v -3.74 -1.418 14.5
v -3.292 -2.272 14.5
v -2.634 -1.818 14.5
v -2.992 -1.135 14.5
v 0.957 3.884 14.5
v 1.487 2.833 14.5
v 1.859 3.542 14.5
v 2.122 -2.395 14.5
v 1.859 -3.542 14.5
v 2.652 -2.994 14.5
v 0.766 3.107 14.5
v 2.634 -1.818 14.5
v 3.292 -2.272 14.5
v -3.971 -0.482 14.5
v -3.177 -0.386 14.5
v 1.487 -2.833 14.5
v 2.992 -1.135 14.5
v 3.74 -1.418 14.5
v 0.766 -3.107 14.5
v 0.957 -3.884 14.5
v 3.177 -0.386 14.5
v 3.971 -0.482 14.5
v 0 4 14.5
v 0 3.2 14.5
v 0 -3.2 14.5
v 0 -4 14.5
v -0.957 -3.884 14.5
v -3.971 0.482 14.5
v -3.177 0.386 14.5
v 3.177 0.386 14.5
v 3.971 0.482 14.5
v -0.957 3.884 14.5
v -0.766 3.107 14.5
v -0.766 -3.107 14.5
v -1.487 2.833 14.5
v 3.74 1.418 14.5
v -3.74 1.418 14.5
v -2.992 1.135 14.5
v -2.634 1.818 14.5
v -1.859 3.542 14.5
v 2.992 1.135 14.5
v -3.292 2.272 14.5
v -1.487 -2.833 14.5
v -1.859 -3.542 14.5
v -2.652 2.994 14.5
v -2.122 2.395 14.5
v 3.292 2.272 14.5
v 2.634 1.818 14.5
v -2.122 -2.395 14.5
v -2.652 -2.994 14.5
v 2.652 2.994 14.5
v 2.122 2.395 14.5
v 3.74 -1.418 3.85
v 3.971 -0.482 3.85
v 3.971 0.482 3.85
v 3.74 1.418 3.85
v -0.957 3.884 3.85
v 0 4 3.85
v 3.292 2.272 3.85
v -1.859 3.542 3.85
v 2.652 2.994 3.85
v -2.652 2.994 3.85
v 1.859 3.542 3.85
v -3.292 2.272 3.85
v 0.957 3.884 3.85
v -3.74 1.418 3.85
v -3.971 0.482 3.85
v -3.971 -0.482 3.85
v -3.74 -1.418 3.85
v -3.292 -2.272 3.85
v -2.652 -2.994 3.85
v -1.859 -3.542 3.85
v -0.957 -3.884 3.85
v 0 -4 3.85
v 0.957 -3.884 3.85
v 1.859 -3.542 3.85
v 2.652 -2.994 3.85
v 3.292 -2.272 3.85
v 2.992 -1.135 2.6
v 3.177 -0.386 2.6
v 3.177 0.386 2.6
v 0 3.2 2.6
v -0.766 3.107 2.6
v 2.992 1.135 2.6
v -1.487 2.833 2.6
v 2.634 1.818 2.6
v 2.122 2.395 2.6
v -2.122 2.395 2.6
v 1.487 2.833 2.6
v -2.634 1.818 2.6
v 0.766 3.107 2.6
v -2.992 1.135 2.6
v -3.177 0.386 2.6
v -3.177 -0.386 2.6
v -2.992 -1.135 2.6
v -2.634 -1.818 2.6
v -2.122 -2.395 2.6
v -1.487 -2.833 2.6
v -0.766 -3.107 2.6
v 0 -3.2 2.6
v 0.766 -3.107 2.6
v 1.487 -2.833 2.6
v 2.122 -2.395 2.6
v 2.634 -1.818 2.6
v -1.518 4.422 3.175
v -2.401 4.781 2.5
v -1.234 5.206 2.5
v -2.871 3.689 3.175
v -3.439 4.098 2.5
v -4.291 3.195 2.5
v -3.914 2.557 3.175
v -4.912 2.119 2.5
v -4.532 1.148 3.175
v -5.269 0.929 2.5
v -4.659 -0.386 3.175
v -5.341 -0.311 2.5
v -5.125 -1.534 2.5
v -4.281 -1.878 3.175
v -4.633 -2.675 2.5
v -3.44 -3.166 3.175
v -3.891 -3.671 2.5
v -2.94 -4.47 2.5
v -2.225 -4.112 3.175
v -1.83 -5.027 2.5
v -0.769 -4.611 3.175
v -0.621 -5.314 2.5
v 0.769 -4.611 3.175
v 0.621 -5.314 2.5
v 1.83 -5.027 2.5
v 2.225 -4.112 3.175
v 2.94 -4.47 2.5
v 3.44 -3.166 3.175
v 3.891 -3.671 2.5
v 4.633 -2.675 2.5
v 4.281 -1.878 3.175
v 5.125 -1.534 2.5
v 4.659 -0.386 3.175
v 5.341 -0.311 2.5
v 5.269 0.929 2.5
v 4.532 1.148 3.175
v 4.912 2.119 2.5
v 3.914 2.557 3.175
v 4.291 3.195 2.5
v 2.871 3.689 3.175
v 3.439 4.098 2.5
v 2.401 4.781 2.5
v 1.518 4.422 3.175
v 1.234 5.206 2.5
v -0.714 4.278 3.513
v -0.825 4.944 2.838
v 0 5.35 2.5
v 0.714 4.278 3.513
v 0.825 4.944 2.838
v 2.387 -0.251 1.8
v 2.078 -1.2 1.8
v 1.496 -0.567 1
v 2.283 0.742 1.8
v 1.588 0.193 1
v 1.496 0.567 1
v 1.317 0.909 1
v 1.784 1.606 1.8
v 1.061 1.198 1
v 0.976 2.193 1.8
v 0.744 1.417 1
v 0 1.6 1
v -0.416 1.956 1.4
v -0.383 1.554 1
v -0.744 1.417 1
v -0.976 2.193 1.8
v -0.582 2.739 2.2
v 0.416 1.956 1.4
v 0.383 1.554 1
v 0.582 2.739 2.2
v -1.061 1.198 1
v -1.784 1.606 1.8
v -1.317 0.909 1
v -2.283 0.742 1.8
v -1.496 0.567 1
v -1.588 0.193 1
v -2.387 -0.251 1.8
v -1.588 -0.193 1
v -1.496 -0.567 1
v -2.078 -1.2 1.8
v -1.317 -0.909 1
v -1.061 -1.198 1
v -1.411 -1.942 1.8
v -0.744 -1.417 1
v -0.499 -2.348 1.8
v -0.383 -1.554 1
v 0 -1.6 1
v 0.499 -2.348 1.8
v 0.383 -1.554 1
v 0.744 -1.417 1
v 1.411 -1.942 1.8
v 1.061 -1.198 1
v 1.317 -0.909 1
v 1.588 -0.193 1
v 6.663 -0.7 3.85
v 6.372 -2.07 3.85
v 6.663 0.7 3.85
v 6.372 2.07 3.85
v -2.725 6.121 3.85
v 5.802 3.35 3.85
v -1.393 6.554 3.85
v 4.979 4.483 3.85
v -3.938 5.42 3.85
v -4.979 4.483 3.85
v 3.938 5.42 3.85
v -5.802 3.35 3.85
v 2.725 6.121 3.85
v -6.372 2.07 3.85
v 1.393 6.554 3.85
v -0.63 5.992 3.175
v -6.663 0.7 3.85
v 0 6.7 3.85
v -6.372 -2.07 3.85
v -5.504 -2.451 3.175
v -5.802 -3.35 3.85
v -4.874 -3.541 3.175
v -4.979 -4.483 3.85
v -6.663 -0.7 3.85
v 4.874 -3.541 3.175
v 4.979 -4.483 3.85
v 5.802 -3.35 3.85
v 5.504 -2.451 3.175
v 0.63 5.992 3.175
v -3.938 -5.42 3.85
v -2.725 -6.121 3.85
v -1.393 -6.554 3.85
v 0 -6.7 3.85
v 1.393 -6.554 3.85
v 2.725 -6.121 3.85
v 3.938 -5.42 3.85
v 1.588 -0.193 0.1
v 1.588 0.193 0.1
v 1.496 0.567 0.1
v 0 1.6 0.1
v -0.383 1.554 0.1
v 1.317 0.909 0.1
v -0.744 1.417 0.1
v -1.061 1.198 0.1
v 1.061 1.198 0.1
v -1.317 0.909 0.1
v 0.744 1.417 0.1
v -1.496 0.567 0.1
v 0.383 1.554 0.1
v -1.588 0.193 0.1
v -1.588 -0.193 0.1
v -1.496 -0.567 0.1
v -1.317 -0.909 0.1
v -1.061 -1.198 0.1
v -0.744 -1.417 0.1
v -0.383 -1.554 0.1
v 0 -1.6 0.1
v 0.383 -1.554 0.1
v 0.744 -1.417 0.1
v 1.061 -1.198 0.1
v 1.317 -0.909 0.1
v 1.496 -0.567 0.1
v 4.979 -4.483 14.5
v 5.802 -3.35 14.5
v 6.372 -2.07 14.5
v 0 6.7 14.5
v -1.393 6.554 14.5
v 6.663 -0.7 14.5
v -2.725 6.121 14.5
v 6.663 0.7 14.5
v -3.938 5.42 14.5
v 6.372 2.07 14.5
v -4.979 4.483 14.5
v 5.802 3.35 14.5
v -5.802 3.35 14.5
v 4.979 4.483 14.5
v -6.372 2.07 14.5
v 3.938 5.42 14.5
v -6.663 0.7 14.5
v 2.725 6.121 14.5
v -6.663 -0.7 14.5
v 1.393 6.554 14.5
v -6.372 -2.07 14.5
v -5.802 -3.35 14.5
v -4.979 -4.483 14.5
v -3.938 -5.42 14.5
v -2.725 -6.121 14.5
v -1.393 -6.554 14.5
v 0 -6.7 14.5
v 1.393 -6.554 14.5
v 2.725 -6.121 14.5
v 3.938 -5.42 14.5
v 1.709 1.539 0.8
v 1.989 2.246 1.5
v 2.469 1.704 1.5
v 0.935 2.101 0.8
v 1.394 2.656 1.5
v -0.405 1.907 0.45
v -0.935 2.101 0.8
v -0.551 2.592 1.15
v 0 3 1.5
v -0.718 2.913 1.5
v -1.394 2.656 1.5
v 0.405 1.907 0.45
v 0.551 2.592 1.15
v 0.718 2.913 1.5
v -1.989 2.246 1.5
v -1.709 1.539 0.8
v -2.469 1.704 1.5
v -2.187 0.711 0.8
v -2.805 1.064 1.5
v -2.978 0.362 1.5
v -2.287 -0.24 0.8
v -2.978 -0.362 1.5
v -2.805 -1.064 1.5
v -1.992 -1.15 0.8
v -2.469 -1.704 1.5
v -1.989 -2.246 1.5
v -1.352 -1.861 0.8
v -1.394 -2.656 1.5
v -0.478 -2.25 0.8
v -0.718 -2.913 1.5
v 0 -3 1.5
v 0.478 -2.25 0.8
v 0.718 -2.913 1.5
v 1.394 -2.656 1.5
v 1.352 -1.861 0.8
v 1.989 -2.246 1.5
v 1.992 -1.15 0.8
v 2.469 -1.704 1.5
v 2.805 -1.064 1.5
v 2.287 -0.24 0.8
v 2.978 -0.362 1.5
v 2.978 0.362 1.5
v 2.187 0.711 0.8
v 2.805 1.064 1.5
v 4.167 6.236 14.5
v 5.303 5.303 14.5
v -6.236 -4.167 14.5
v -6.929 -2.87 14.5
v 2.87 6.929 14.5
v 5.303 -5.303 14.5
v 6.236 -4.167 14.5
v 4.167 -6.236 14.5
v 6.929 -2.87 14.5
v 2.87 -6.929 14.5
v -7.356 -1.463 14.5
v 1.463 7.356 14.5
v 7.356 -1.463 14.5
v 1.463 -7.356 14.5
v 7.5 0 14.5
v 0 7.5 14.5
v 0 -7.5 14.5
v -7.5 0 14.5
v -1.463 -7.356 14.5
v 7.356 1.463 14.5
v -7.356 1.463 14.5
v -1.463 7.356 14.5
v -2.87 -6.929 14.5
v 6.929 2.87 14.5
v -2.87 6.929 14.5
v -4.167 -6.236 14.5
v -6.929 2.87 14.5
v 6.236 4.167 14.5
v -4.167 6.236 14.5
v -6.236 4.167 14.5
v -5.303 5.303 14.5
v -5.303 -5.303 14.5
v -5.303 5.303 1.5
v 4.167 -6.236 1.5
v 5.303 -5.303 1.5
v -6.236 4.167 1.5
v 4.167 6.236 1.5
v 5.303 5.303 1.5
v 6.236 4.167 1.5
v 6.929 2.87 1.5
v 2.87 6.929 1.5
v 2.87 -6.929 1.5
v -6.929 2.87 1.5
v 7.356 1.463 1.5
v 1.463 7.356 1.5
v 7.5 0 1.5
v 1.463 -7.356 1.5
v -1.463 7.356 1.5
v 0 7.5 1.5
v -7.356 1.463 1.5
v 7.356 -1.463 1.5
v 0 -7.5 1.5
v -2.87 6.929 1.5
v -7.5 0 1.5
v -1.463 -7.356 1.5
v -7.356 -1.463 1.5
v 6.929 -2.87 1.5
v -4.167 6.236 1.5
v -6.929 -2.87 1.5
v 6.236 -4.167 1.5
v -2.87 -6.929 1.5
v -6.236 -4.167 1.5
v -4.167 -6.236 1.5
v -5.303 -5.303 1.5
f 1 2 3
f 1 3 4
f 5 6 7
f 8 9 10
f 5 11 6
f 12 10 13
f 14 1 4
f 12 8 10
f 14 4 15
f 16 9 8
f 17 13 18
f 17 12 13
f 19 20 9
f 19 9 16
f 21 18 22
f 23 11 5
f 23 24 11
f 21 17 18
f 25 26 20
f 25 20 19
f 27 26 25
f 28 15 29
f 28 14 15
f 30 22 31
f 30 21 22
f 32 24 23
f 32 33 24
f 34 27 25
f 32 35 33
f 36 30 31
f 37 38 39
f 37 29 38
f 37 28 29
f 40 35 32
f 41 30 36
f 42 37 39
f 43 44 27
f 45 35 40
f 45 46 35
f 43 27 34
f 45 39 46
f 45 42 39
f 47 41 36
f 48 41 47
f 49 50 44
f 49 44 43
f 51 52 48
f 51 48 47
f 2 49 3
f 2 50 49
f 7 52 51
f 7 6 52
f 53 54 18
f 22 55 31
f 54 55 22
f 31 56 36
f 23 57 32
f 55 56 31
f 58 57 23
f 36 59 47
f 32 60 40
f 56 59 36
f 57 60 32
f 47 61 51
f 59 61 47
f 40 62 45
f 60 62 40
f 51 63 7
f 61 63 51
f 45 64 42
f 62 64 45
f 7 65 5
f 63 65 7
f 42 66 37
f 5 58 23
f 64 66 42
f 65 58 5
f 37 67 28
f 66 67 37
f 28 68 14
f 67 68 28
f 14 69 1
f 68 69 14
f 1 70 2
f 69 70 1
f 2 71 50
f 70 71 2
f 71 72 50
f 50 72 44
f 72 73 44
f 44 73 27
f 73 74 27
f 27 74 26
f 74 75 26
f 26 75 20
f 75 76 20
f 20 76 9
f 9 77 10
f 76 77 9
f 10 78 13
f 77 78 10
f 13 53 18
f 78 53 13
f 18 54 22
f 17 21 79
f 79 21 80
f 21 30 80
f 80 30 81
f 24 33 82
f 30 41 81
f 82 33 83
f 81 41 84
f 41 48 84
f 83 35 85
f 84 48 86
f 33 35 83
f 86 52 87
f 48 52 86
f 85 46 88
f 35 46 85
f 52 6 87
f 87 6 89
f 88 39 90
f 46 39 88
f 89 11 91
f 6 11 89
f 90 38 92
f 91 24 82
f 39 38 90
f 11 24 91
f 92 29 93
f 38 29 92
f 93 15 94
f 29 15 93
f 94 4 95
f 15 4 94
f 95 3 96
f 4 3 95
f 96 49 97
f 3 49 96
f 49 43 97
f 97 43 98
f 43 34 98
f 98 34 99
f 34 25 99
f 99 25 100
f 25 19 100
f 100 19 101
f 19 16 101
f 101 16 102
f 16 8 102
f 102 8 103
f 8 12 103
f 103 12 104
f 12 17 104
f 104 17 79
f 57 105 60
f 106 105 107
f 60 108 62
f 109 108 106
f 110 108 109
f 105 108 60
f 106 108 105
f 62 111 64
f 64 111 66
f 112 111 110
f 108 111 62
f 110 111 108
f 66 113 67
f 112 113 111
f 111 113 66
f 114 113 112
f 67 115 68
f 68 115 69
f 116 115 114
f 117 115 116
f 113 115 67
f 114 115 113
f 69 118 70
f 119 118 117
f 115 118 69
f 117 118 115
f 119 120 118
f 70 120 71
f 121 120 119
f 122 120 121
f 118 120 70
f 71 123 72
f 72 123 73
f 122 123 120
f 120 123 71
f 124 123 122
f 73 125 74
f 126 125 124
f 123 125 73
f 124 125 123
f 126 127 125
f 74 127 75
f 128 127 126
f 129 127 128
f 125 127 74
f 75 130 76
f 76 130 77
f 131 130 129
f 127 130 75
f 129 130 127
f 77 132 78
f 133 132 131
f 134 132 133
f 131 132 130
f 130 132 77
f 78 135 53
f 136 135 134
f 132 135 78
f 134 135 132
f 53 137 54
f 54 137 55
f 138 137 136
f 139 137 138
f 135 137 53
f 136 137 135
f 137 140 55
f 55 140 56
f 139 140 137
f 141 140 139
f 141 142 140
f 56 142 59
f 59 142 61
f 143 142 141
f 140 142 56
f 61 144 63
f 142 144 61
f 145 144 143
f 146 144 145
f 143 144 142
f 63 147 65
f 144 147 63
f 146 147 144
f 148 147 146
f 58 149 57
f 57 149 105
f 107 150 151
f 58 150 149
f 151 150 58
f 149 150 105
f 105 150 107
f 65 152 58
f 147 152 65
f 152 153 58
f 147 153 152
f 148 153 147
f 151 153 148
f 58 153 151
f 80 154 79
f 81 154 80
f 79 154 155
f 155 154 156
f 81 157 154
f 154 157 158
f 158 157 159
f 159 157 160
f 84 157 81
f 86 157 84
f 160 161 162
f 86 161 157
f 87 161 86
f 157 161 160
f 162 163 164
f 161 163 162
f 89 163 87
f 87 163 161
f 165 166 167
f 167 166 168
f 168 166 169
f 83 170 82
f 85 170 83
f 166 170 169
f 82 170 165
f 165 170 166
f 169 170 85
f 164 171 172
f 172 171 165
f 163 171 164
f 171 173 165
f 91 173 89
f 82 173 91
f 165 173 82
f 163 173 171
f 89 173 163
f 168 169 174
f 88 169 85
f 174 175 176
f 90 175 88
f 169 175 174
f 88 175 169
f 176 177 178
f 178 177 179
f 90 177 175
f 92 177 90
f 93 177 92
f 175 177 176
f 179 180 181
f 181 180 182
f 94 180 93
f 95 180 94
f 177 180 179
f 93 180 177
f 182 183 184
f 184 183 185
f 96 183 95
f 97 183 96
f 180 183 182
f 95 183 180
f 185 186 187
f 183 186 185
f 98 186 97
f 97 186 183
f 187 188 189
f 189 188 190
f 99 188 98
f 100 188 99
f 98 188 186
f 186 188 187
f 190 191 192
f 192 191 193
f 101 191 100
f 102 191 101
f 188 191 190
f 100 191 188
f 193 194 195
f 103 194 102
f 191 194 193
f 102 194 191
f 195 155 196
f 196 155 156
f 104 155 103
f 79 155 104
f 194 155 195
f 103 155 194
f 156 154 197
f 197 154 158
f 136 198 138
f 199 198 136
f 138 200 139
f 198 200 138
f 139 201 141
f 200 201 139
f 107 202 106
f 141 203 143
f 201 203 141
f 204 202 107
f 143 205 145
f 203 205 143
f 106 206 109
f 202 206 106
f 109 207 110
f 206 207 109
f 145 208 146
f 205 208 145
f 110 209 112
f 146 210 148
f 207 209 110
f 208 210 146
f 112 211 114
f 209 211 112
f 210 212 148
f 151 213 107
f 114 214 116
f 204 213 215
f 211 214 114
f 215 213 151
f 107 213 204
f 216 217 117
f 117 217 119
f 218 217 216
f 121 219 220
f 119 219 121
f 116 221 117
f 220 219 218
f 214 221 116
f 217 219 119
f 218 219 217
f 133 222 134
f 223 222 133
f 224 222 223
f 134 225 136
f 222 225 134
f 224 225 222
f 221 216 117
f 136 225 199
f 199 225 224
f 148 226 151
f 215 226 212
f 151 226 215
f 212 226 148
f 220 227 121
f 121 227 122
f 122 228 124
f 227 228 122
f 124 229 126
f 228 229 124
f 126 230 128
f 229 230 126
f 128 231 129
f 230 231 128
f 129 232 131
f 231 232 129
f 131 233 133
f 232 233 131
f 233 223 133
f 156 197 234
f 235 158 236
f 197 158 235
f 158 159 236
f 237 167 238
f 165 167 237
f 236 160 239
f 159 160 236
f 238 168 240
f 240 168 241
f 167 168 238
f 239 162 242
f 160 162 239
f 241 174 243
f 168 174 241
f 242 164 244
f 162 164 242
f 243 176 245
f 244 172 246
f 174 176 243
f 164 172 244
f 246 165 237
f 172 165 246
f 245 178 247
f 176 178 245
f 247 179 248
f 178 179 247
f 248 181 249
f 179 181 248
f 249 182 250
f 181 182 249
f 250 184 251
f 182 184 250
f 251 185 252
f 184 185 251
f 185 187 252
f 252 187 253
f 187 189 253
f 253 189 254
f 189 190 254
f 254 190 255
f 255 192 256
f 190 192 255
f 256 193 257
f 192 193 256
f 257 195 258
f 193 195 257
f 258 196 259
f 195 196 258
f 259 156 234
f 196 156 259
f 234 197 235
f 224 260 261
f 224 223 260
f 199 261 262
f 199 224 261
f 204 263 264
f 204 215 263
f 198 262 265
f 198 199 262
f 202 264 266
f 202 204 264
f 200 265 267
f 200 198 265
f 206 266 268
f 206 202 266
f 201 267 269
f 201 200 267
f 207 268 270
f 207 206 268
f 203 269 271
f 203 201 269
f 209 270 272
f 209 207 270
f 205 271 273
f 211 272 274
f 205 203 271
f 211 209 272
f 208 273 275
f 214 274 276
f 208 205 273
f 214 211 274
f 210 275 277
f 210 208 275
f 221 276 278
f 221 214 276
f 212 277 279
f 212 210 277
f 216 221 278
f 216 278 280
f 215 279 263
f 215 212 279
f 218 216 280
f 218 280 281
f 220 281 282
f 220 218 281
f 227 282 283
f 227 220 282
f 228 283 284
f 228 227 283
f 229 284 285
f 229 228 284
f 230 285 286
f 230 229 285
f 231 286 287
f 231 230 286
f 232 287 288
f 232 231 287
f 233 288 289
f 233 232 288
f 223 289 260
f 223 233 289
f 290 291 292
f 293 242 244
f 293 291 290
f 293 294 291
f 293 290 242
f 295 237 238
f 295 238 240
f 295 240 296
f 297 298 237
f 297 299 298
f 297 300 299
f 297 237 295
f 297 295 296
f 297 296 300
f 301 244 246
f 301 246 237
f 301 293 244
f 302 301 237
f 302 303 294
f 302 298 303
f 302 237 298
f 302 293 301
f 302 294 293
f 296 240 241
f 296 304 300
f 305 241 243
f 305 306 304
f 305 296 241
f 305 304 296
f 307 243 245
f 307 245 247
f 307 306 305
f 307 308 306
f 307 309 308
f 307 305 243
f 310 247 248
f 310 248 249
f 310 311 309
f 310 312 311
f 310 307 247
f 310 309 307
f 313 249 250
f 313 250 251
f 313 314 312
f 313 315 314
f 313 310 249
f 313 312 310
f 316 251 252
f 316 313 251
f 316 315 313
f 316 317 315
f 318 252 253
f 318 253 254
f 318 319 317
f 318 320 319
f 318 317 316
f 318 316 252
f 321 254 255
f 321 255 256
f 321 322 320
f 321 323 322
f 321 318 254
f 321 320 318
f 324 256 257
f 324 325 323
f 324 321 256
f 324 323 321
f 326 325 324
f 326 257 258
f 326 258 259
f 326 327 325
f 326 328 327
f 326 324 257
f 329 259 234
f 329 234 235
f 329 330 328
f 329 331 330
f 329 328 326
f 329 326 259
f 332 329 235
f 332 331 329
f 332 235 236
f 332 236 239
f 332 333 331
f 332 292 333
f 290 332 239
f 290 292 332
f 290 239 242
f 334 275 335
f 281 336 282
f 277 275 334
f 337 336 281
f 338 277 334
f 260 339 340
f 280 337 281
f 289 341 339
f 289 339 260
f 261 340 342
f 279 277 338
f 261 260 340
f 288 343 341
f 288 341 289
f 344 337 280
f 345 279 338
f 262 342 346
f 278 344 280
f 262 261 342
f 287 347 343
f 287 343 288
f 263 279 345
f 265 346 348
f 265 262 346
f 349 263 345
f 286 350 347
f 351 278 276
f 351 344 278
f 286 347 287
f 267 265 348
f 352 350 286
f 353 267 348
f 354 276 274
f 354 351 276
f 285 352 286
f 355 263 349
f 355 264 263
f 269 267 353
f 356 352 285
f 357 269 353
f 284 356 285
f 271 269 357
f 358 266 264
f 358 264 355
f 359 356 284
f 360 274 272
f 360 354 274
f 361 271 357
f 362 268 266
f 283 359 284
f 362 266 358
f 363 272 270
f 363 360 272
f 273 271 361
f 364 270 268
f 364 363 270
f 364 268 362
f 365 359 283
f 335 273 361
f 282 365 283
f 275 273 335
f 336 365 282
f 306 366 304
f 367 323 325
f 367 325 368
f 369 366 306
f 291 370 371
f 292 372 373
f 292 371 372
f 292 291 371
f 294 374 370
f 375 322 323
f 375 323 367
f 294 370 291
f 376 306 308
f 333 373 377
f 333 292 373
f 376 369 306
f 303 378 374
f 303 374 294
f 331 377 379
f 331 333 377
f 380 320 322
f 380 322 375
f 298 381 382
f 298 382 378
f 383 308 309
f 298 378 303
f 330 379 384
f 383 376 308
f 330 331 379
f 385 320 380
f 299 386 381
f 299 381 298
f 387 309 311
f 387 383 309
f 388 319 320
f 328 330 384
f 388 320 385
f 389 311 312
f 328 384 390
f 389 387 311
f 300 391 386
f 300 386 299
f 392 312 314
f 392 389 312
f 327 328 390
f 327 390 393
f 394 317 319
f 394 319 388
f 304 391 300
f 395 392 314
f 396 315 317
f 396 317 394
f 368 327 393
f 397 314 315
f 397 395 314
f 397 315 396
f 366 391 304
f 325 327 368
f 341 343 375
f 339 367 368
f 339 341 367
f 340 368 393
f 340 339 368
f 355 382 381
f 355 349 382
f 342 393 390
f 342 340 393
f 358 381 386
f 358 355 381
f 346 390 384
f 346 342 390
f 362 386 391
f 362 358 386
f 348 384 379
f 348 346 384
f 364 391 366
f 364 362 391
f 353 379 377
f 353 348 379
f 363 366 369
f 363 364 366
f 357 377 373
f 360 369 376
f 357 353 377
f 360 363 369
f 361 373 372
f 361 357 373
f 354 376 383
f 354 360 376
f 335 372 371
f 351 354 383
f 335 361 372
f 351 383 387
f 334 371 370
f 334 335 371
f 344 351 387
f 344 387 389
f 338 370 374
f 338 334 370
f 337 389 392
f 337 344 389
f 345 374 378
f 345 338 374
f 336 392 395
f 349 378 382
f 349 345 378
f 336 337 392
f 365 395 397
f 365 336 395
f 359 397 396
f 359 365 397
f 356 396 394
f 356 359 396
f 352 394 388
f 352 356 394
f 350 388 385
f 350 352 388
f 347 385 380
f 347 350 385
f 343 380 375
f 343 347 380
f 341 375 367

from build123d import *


with BuildPart() as screw:
    # Sketch003 → Revolve (revolve)
    with BuildSketch(Plane.YZ):
        Polygon((0, 0), (1.6, 0), (1.6, 1), (3.2, 2.6), (3.2, 15), (0, 15), align=None)
    revolve(axis=Axis((0, 0, 0), (0, 0, 1)))


with BuildPart() as cut:
    # Sketch → Revolve001 (revolve)
    with BuildSketch(Plane.YZ):
        Polygon((3, 1.5), (7.5, 1.5), (7.5, 14.5), (6.7, 14.5), (6.7, 3.85), (5.35, 2.5), (4, 3.85), (4, 14.5), (0, 14.5), (0, 0), (1.5, 0), align=None)
    revolve(axis=Axis((0, 0, 0), (0, 0, 1)))

    # Cut: cut Screw
    add(screw.part, mode=Mode.SUBTRACT)


solid = cut.part
